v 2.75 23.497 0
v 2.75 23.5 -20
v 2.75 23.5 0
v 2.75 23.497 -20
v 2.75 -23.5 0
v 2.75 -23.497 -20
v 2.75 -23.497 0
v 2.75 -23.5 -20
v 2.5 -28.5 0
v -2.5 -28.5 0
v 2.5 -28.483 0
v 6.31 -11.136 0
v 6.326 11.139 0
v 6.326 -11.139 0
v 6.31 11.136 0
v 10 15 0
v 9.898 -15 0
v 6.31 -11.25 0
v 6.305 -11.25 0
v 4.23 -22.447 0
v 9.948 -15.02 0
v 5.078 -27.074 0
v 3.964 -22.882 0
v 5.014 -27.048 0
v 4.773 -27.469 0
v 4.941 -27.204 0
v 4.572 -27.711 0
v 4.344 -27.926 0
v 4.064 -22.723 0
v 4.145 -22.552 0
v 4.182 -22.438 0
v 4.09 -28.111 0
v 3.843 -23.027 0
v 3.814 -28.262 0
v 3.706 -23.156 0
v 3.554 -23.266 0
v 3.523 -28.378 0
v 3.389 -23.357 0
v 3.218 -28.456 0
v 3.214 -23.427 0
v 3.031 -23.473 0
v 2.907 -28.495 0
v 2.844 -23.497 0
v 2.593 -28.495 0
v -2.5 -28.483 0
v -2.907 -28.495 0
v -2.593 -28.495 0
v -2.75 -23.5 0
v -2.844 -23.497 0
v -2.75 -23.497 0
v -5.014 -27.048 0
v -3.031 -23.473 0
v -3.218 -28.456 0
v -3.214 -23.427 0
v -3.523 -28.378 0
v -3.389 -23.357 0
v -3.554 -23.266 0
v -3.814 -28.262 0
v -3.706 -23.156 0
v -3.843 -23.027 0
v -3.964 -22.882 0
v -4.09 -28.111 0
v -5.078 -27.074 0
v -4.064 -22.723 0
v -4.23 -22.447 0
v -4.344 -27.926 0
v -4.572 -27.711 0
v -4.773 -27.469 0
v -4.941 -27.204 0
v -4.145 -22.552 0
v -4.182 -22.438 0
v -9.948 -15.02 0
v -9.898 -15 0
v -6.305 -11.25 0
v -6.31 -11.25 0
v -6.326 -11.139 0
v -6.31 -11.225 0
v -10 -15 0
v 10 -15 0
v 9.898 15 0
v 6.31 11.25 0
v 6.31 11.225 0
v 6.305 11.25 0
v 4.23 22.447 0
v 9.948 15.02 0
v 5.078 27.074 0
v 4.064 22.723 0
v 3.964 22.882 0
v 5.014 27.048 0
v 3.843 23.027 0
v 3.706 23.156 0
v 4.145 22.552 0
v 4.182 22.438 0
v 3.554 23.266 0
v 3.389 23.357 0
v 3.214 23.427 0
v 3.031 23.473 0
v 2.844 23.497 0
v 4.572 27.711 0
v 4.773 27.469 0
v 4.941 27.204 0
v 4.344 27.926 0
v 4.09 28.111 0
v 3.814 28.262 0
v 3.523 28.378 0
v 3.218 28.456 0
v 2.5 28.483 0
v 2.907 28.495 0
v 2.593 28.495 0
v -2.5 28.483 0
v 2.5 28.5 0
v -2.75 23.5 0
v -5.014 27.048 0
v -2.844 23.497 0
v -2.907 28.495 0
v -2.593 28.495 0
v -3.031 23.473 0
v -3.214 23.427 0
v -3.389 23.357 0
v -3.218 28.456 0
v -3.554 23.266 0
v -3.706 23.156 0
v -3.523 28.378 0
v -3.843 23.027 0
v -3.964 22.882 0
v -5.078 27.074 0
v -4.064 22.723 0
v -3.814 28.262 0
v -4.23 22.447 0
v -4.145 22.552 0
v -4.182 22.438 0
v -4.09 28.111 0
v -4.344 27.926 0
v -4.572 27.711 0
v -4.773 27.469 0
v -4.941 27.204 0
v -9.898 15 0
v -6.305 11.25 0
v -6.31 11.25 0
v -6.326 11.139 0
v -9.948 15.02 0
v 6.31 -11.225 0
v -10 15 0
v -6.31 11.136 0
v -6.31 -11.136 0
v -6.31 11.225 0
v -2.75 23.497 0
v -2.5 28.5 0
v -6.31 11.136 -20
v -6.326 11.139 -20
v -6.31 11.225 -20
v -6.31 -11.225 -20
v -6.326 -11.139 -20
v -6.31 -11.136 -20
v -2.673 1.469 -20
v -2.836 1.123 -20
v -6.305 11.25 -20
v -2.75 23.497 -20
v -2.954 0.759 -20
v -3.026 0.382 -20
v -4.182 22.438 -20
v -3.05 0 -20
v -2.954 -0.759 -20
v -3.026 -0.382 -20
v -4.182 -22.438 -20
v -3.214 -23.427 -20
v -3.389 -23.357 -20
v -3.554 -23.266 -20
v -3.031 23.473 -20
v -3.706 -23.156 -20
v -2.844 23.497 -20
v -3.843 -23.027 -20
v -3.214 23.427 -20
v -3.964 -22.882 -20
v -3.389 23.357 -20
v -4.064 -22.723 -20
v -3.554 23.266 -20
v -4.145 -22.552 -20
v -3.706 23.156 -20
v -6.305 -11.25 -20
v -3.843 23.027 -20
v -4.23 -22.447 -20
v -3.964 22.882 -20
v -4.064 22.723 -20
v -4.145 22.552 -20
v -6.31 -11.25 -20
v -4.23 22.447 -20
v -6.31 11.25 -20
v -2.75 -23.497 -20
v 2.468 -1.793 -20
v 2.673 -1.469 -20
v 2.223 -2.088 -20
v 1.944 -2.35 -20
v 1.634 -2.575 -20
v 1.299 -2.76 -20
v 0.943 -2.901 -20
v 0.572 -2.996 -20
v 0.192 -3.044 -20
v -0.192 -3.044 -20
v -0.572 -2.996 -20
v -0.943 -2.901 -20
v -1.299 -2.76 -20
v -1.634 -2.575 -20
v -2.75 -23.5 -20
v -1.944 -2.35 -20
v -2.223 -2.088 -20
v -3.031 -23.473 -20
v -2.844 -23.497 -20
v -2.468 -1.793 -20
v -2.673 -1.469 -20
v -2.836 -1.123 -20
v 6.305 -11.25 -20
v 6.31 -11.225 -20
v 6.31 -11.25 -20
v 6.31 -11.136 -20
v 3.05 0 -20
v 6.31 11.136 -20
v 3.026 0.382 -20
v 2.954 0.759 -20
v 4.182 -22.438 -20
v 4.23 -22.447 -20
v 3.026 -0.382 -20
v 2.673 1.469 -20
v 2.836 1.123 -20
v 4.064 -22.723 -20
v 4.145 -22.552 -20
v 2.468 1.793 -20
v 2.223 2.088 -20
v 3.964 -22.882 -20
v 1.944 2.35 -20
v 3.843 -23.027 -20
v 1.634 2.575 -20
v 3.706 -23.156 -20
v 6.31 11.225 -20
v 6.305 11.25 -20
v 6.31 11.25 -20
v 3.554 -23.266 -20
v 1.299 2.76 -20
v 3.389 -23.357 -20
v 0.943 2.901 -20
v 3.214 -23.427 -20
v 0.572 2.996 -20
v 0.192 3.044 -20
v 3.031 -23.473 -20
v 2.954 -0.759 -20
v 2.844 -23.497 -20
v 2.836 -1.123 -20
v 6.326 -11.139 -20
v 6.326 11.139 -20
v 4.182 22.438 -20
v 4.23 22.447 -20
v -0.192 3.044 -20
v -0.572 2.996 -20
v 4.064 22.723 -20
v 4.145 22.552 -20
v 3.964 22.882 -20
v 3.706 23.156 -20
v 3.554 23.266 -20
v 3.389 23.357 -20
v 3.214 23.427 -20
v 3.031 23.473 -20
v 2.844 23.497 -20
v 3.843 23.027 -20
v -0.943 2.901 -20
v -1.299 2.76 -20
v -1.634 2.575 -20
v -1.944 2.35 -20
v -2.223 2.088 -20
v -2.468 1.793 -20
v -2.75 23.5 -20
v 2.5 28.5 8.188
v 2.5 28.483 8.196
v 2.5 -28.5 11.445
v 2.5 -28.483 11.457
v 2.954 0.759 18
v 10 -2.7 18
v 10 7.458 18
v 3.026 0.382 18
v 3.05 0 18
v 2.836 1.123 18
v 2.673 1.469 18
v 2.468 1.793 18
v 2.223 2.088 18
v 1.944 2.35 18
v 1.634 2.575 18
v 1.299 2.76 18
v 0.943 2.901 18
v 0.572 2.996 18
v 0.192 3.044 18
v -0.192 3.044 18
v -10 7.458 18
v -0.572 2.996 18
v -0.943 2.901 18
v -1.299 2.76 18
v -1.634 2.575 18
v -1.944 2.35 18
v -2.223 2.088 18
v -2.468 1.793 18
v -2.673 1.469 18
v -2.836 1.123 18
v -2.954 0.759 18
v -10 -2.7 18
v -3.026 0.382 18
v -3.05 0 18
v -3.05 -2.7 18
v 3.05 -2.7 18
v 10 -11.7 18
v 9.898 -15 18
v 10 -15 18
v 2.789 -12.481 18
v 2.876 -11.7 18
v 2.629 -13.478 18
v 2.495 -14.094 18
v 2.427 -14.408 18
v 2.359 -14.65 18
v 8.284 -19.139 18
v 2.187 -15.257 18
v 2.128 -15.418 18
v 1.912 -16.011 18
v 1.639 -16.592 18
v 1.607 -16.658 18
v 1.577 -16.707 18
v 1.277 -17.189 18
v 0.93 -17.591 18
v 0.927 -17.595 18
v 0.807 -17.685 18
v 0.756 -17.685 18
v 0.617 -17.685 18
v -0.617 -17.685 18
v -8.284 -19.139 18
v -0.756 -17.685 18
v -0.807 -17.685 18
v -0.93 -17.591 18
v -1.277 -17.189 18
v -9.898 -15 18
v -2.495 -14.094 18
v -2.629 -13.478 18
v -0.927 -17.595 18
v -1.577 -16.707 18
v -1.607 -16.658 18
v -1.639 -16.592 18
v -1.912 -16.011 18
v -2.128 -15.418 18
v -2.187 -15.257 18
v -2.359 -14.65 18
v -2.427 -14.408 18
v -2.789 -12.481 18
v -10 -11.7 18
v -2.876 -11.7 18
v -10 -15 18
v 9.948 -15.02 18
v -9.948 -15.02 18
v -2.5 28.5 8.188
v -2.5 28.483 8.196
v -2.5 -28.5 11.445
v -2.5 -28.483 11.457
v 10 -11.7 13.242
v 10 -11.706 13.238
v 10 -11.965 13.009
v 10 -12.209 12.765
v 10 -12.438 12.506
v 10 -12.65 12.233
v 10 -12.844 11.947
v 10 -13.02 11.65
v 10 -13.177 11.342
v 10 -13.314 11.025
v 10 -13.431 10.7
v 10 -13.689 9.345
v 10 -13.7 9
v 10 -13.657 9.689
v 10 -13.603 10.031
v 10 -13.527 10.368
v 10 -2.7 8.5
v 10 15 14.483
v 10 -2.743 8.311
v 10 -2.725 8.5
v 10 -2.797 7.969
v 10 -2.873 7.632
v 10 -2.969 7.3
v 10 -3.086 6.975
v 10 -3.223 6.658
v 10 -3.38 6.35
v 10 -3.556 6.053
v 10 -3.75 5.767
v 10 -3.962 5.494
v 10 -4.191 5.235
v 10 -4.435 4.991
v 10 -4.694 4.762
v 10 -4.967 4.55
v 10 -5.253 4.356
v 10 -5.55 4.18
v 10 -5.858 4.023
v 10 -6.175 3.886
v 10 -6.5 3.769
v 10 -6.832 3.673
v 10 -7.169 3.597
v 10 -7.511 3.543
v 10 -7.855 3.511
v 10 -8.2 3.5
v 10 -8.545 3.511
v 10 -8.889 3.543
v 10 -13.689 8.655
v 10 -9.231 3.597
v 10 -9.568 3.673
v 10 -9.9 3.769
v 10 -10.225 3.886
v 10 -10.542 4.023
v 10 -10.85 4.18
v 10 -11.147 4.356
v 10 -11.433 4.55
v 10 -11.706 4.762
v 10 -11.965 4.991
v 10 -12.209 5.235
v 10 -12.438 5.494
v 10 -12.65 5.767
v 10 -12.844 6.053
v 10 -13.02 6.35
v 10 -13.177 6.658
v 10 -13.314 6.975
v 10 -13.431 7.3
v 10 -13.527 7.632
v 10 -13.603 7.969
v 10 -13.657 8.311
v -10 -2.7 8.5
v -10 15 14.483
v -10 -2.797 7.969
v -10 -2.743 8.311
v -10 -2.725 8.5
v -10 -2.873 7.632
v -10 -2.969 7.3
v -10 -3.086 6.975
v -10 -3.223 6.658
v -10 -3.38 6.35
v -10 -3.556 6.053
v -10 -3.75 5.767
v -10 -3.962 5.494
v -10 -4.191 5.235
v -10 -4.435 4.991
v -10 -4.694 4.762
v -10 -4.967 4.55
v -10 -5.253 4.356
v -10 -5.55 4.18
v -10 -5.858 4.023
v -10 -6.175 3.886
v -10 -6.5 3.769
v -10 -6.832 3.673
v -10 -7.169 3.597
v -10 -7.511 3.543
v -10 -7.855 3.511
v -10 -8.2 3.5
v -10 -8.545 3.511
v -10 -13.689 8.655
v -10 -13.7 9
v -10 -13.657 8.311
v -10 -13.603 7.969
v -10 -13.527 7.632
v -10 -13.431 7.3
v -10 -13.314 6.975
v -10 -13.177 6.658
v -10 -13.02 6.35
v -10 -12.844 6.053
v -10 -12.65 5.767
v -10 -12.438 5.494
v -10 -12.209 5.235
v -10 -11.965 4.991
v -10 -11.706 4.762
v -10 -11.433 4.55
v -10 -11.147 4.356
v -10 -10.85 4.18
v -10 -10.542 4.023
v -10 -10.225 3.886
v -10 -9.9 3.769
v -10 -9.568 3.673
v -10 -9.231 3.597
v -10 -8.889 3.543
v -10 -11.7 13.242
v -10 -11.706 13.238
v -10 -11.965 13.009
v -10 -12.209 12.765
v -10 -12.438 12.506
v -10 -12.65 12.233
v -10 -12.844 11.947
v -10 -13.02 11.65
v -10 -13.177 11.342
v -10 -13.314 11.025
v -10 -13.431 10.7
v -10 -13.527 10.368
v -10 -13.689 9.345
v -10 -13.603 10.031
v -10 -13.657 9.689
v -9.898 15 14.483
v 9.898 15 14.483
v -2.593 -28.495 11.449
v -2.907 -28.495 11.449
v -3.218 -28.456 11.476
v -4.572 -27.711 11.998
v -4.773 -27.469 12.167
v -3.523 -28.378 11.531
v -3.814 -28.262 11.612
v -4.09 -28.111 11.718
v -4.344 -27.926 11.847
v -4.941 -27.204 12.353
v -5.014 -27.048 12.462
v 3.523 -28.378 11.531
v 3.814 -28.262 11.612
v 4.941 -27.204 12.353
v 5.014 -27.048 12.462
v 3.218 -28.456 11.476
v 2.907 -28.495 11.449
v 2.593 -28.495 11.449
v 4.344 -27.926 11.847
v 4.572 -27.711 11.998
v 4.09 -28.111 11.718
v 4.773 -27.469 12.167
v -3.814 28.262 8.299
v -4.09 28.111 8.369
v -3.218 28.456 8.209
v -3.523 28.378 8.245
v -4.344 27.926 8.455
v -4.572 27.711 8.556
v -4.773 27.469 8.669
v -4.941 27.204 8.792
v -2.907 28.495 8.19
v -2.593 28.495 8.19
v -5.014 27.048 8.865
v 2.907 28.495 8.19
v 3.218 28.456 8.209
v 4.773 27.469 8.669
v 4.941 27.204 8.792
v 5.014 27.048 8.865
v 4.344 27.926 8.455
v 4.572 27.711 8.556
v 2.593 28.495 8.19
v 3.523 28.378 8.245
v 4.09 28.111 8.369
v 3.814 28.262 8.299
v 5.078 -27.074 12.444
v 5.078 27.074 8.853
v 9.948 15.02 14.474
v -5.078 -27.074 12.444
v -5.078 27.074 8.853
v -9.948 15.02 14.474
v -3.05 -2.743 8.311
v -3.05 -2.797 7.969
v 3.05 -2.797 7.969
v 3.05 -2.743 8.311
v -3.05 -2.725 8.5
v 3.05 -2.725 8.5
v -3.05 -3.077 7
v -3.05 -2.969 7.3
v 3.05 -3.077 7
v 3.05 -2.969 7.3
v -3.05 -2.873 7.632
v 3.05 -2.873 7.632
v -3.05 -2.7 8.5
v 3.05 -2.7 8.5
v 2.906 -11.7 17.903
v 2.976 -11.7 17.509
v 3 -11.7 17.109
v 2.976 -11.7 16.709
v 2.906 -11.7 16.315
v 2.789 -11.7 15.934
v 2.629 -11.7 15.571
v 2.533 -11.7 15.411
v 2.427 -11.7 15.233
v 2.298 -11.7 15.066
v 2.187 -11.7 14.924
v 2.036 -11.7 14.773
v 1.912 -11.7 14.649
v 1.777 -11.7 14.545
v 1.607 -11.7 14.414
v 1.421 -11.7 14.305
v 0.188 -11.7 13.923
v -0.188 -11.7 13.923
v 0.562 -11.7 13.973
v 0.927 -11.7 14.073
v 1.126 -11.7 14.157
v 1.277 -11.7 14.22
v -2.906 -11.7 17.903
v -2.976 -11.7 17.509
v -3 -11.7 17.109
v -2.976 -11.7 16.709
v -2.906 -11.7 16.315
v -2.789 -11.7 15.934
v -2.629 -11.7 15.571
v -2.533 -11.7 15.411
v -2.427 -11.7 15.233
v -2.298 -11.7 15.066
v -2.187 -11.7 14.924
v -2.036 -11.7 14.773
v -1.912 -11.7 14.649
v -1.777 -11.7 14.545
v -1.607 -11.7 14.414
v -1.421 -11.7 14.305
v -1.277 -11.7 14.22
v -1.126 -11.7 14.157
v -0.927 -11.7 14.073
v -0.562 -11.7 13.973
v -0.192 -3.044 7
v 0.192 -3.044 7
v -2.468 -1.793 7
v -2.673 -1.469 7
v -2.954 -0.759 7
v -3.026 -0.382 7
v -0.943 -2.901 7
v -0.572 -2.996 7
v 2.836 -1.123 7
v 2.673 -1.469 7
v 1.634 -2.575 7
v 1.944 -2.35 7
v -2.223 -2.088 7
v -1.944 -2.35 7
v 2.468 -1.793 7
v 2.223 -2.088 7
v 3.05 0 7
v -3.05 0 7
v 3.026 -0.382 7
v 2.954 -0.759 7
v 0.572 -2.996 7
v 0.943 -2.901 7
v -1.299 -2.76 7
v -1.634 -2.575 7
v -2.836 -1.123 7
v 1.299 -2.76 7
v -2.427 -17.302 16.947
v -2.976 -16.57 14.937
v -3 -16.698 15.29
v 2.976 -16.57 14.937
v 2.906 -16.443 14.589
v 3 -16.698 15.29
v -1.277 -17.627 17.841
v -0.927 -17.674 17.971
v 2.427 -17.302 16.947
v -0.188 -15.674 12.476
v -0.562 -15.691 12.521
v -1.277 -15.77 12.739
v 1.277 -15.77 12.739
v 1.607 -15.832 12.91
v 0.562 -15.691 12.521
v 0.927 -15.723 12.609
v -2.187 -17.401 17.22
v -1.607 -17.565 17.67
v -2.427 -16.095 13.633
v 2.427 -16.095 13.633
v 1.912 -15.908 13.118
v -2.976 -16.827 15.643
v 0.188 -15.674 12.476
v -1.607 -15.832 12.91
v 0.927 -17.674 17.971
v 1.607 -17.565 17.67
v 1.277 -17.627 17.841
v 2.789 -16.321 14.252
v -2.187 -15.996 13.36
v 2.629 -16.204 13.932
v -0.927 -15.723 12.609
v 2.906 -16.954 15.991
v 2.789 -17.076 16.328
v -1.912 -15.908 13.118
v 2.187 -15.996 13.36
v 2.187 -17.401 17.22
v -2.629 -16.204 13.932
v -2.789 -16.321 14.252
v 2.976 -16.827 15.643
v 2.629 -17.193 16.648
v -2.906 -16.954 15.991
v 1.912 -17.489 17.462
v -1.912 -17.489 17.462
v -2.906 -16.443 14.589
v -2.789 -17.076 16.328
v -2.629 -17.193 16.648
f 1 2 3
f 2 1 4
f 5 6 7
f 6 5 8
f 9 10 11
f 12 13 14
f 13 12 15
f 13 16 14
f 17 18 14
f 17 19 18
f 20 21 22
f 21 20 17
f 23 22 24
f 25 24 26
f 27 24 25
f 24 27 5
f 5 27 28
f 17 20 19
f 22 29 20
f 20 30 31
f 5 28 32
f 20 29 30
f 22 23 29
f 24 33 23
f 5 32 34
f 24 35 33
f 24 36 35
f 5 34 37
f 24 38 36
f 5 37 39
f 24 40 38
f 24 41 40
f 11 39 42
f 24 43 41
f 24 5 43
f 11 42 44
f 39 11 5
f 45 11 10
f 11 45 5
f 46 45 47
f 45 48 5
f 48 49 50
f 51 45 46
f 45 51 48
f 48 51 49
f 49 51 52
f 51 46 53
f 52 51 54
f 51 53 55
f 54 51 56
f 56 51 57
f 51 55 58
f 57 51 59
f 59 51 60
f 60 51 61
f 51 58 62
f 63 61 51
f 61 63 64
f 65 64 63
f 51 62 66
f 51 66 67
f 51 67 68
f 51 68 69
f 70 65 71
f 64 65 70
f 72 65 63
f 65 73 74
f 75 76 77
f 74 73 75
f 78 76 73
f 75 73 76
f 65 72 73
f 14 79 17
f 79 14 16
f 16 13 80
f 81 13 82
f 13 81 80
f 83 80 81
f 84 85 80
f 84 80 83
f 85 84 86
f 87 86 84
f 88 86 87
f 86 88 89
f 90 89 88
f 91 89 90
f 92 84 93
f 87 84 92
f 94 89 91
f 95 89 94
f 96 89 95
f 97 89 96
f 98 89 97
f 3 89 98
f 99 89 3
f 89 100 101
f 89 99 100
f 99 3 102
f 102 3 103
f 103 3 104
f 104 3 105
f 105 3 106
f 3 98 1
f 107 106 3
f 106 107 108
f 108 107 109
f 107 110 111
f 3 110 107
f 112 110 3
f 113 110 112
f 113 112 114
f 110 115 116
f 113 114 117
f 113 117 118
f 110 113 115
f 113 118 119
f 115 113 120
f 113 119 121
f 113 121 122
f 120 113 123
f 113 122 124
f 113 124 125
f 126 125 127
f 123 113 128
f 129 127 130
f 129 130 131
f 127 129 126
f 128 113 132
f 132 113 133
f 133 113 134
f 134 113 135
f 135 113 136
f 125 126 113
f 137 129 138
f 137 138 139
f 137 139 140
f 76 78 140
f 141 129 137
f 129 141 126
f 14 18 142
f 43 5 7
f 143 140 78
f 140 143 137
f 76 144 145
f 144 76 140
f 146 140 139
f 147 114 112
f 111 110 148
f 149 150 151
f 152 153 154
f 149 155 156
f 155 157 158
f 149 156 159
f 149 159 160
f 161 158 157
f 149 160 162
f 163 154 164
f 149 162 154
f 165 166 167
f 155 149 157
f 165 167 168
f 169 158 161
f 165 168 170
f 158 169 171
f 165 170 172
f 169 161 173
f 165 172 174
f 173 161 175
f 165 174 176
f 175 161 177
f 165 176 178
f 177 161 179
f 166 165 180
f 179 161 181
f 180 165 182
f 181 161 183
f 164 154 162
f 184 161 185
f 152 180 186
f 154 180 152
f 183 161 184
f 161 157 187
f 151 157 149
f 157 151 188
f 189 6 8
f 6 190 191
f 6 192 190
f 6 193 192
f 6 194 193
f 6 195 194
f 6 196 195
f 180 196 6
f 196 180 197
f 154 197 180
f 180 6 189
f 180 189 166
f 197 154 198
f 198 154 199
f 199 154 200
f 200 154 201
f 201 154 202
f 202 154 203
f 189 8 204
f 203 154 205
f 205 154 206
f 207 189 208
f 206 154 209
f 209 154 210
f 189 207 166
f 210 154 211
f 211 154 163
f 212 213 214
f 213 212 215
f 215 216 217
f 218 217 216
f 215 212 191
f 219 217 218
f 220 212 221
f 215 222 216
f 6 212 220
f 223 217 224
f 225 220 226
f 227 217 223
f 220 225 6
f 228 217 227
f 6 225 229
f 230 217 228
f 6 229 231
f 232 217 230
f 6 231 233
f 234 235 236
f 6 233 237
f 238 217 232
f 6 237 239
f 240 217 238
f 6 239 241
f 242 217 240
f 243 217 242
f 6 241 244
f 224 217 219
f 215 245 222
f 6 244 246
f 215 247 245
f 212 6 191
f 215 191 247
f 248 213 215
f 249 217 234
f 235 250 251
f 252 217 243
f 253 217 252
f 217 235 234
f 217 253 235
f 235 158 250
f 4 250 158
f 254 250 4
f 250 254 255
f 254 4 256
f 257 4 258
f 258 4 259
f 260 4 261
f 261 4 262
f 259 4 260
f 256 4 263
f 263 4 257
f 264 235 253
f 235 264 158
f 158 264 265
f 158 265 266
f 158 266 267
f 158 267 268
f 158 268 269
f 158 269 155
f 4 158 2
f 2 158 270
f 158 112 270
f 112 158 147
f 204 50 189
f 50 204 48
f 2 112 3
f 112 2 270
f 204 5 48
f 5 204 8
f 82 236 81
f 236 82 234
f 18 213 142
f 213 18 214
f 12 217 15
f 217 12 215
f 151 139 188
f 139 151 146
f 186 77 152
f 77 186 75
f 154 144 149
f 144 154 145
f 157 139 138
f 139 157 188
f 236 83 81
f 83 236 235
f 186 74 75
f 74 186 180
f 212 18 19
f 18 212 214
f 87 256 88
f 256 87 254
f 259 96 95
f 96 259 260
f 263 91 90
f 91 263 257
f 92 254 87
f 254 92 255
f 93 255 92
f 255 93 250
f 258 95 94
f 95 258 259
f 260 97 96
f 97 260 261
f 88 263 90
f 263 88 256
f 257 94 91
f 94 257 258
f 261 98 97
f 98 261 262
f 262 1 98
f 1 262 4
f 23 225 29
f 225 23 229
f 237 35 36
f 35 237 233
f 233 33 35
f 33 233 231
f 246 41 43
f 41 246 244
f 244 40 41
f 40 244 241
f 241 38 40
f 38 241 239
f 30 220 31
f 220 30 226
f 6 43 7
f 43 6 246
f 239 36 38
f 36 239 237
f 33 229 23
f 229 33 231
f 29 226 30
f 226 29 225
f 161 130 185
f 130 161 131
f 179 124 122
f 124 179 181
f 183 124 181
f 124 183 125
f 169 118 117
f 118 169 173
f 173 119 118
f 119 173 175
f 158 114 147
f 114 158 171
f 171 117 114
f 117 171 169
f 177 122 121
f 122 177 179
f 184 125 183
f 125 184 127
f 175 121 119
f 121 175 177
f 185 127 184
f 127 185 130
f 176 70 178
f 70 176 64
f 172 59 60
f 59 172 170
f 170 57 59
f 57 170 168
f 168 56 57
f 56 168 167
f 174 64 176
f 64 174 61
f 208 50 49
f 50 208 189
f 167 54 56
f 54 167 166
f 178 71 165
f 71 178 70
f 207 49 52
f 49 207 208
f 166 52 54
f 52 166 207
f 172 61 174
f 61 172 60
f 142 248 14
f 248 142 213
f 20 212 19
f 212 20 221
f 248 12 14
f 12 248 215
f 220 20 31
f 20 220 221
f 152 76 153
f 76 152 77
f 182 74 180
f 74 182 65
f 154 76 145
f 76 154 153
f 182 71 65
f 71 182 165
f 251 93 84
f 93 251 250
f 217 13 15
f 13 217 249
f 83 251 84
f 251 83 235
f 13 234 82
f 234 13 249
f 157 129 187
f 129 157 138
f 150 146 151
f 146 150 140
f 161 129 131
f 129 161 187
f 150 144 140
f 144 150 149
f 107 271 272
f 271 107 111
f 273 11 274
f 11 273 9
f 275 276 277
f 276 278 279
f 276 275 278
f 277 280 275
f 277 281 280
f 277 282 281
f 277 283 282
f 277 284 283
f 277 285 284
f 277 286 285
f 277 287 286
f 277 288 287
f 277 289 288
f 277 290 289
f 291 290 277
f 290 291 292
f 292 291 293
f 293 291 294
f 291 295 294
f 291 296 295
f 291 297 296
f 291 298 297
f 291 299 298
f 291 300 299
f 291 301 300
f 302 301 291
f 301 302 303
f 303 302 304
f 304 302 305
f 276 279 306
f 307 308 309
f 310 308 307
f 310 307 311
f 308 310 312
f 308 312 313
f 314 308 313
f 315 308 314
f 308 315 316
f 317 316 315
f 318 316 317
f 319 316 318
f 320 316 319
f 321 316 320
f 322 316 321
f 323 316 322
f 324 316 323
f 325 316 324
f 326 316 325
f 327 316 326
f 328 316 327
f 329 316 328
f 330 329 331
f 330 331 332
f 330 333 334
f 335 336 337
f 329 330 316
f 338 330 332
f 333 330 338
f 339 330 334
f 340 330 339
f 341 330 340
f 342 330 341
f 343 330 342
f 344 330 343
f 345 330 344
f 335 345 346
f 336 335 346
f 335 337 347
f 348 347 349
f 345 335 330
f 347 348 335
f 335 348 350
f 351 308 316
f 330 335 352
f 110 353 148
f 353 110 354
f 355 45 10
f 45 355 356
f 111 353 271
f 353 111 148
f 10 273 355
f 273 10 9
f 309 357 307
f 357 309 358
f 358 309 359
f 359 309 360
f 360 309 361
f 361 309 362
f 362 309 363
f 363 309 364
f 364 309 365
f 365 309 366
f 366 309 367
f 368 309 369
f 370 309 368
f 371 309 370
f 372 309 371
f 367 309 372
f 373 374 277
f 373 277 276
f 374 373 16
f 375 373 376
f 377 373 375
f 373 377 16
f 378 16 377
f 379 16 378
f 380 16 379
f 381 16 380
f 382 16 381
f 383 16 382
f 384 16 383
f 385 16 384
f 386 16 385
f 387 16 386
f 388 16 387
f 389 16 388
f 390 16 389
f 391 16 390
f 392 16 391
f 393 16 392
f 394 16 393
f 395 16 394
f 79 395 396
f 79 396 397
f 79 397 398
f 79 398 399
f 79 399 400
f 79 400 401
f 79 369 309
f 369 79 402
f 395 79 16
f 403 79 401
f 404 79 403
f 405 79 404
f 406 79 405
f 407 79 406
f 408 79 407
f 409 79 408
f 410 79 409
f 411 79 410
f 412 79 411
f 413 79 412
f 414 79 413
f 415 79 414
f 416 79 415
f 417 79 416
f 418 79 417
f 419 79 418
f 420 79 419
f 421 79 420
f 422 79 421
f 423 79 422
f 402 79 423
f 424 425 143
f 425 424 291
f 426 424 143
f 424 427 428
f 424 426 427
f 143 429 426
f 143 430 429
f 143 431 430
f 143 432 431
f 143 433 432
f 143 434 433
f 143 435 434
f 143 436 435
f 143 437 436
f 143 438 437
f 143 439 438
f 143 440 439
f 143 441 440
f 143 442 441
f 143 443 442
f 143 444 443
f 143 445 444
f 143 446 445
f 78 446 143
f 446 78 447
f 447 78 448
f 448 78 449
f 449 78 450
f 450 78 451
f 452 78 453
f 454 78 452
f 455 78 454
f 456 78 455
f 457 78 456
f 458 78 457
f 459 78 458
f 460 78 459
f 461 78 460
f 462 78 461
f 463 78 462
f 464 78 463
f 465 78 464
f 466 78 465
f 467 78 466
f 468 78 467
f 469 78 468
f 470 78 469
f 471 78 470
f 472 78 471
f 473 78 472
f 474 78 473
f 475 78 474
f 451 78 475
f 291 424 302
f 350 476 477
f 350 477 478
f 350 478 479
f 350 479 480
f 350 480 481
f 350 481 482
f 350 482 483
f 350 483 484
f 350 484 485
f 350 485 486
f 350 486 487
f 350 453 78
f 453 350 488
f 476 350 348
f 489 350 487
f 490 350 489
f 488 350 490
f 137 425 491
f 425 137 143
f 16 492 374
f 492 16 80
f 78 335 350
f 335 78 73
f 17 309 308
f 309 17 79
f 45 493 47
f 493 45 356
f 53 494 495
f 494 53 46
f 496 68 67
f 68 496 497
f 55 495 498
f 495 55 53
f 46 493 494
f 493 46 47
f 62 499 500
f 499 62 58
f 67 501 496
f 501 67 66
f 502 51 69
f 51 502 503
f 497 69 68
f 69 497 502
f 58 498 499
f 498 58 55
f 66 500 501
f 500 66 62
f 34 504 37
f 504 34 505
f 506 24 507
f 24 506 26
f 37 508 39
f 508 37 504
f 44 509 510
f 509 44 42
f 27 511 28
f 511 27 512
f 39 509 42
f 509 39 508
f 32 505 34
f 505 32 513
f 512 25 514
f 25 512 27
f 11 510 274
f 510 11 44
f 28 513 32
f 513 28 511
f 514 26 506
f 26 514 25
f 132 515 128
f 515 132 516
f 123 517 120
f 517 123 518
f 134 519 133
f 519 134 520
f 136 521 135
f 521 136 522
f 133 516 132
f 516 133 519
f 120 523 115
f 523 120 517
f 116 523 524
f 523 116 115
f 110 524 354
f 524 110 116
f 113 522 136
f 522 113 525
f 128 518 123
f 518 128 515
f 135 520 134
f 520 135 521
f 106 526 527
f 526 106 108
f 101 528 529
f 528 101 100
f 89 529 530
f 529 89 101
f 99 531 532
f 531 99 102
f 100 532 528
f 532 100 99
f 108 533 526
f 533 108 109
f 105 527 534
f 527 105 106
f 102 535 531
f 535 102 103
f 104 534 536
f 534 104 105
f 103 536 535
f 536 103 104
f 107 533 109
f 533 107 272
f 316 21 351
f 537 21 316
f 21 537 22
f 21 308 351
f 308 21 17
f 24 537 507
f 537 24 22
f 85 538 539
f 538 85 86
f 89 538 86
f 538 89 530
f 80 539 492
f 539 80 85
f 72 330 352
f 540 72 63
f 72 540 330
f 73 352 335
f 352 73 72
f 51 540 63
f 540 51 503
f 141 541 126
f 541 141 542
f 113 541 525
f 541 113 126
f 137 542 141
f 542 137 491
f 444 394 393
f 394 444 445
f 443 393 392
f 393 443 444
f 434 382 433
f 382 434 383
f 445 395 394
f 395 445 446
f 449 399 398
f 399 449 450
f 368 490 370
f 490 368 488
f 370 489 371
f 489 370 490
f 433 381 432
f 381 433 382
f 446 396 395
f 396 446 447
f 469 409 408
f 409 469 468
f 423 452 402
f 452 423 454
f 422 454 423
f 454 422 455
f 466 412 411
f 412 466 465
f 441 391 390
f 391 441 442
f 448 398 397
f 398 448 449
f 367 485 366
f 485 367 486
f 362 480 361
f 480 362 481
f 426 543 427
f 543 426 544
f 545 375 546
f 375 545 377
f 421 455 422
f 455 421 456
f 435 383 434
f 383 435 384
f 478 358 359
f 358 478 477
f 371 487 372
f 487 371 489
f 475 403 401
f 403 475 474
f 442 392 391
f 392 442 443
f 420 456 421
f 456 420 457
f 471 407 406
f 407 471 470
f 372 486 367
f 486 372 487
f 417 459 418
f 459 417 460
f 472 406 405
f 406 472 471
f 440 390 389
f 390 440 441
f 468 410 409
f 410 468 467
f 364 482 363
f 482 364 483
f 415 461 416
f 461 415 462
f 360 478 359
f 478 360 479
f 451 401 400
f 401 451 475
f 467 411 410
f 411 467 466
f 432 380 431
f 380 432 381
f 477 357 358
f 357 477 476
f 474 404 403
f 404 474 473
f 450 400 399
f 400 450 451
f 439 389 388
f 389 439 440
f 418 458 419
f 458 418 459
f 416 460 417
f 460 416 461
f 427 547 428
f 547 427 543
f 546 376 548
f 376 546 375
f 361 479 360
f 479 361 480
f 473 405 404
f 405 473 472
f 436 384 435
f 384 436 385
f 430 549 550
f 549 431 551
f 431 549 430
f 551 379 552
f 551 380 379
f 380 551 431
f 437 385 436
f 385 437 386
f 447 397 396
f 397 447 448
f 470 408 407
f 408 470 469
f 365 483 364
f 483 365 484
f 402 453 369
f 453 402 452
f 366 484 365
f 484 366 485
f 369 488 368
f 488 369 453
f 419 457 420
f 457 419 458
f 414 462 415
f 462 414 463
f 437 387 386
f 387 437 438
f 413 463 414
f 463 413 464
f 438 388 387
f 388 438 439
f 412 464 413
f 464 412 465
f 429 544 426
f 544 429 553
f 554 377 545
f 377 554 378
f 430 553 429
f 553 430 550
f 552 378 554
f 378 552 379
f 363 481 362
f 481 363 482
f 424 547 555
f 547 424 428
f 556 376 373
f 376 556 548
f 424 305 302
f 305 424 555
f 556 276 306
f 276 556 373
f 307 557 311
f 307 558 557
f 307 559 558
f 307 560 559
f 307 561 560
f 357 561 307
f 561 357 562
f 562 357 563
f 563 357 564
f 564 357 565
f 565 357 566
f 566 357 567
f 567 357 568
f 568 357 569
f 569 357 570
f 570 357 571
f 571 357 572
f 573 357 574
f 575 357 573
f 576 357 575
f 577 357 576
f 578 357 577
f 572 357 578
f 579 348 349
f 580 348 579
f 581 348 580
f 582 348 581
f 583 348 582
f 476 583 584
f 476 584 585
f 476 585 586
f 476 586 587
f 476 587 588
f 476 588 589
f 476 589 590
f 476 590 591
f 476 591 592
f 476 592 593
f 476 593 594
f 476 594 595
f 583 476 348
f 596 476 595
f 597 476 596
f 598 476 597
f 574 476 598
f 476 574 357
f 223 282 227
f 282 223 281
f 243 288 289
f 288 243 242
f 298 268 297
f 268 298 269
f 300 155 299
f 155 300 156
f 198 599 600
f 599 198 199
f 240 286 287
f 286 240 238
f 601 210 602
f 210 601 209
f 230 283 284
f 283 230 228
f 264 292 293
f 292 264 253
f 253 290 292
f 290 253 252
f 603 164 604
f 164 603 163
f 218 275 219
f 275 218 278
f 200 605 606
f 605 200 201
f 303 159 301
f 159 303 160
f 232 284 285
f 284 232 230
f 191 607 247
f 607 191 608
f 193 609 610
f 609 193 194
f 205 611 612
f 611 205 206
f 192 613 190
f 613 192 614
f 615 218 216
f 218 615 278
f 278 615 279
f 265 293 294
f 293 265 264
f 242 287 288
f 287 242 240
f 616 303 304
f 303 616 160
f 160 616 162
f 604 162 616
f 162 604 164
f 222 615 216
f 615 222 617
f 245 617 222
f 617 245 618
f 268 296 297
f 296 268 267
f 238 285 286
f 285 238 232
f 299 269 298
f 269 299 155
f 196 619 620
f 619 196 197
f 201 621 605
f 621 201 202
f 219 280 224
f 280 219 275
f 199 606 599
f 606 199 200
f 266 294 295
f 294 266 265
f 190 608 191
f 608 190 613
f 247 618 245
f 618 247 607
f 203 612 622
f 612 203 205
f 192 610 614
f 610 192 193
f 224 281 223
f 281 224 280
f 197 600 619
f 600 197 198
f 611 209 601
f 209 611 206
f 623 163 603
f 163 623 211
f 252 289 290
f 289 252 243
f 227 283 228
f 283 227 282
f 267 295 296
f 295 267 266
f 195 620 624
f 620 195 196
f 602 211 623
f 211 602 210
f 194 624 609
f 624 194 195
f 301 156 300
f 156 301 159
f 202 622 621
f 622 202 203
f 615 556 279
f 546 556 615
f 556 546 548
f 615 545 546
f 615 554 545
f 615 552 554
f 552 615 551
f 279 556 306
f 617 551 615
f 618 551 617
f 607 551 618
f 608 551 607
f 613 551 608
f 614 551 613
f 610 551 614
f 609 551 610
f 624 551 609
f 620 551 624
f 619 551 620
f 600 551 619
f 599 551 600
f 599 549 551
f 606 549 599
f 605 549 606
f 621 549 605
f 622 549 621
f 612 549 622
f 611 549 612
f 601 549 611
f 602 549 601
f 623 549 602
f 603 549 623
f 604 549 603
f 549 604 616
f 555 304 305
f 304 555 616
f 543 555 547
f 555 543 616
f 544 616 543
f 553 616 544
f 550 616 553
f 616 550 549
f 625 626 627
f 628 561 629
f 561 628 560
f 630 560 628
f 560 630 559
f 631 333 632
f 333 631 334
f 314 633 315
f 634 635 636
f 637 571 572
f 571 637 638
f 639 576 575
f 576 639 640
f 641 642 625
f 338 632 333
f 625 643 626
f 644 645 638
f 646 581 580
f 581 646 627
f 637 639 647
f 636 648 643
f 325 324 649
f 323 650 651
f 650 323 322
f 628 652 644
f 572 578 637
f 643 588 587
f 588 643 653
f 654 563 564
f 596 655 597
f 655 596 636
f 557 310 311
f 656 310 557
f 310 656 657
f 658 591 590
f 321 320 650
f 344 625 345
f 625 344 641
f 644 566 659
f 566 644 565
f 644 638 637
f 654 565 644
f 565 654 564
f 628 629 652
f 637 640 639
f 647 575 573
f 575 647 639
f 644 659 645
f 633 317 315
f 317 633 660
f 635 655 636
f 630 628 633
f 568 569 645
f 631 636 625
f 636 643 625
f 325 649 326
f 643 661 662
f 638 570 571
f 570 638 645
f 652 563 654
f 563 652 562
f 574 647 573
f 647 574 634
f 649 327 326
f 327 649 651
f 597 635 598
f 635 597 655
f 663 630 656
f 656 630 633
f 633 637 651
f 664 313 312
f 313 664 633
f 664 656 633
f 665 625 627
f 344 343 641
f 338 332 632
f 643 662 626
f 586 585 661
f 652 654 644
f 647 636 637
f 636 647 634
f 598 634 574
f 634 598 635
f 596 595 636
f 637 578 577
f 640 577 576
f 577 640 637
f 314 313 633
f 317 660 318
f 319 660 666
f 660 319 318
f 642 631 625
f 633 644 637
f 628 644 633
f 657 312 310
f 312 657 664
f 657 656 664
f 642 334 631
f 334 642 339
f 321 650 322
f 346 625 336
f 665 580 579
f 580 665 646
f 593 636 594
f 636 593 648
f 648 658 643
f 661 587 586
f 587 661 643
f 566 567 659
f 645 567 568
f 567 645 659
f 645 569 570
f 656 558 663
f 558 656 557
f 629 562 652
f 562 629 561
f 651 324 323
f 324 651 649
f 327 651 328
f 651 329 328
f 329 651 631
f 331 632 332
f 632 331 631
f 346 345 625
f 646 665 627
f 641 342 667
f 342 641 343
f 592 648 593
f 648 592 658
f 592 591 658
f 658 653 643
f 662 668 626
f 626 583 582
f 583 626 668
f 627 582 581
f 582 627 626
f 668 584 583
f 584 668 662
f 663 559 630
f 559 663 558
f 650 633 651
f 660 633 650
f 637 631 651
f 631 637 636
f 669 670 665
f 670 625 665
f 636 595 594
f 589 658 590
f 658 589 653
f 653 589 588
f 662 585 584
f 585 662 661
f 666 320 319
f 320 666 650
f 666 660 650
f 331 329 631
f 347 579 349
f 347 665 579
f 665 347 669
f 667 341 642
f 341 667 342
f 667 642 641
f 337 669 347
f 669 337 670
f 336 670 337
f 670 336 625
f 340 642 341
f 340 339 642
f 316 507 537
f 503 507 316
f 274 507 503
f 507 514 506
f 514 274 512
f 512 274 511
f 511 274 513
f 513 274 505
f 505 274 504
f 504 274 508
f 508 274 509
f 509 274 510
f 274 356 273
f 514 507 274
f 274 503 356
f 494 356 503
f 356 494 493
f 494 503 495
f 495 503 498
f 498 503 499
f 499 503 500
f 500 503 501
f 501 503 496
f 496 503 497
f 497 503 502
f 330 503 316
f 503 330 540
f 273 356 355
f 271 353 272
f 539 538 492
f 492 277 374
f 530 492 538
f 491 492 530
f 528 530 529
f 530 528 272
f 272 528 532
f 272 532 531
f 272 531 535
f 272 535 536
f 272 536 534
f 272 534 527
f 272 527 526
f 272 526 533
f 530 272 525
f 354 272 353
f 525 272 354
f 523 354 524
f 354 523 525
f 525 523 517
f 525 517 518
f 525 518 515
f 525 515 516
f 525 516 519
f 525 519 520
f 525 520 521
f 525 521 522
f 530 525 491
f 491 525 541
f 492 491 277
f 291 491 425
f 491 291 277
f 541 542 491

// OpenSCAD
/*
 * Embout Barre de Fleche Thibault
 * 
 * Diametre inox: 6mm
 * Longueur interieure: 47mm
 * Longueur exterieure: 57mm (minimum)
 * Largeur interieure: 12.62mm
 * Largeur exterieure: 18mm (mini)
 *
 * Hauteur partie superieure: 18mm
 * Hauteur partie interieure: 20mm
 *
 * Diametre trou de fixation: 3mm
 * Position trou de fixation: H: -10mm
 *                            L:  10mm
 */
 
 module bottomPart() {
   
   width = 12.62;
   length = 47;
   height = 20;
   
   union() {
     rotate([0, 0, 0]) {
       translate([0, 0, 0]) {
         cube([5.5, length, height], center=true);
       }
     }
     rotate([0, 0, 0]) {
       translate([0, 0, 0]) {
         cube([width, 22.5, height], center=true);
       }
     }
     // Corners
     rotate([0, 0, 0]) {
       translate([5.5 / 2, (length / 2) - 1.5, 0]) {
         cylinder(h=height, r=1.5, center=true, $fn=50);
       }
     }
     rotate([0, 0, 0]) {
       translate([5.5 / 2, -((length / 2) - 1.5), 0]) {
         cylinder(h=height, r=1.5, center=true, $fn=50);
       }
     }
     rotate([0, 0, 0]) {
       translate([-5.5 / 2, (length / 2) - 1.5, 0]) {
         cylinder(h=height, r=1.5, center=true, $fn=50);
       }
     }
     rotate([0, 0, 0]) {
       translate([-5.5 / 2, -((length / 2) - 1.5), 0]) {
         cylinder(h=height, r=1.5, center=true, $fn=50);
       }
     }
     // Joining narrow and wide parts
     // - Right
     rotate([0, 0, -10.5]) {
       translate([5.75, -15.55, 0]) {
         cube([5, 11.5, height], center=true);
       }
     }
     rotate([0, 0, 10.5]) {
       translate([-5.75, -15.55, 0]) {
         cube([5, 11.5, height], center=true);
       }
     }
     // - Left
     rotate([0, 0, 10.5]) {
       translate([5.75, 15.55, 0]) {
         cube([5, 11.5, height], center=true);
       }
     }
     rotate([0, 0, -10.5]) {
       translate([-5.75, 15.55, 0]) {
         cube([5, 11.5, height], center=true);
       }
     }
   }
 }
 
 module topPart() {
   
   fullLength = 57;
   height = 18;
   
   difference() {
     union() {
     
       // Main thing
       rotate([0, 0, 0]) {
         translate([0, 0, 0]) {
           cube([5, fullLength, height], center=true); 
         }
       }
       // Thickest part
       rotate([0, 0, 0]) {
         translate([0, 0, 0]) {
           cube([20, 30, height], center=true); 
         }
       }
       // Corners
       rotate([0, 0, 0]) {
         translate([-5.5 / 2, -((fullLength / 2) - 2.5), 0]) {
           cylinder(h=18, r=2.5, center=true, $fn=50);
         }
       }
       rotate([0, 0, 0]) {
         translate([5.5 / 2, -((fullLength / 2) - 2.5), 0]) {
           cylinder(h=18, r=2.5, center=true, $fn=50);
         }
       }
       rotate([0, 0, 0]) {
         translate([-5.5 / 2, ((fullLength / 2) - 2.5), 0]) {
           cylinder(h=18, r=2.5, center=true, $fn=50);
         }
       }
       rotate([0, 0, 0]) {
         translate([5.5 / 2, ((fullLength / 2) - 2.5), 0]) {
           cylinder(h=18, r=2.5, center=true, $fn=50);
         }
       }
       // Joining narrow and wide parts
       // - One side
       rotate([0, 0, -22]) {
         translate([11.35, -16.7, 0]) {
           cube([7, 13, height], center=true);
         }
       }
       rotate([0, 0, 22]) {
         translate([11.35, 16.7, 0]) {
           cube([7, 13, height], center=true);
         }
       }
       // - Other side
       rotate([0, 0, 22]) {
         translate([-11.35, -16.7, 0]) {
           cube([7, 13, height], center=true);
         }
       }
       rotate([0, 0, -22]) {
         translate([-11.35, 16.7, 0]) {
           cube([7, 13, height], center=true);
         }
       }
       
     }
     // Cable hole
     rotate([0, 90, 0]){ 
       translate([0, -8.2, 0]) {
         cylinder(h=30, r=5.5, center=true, $fn=100);
       }
     }
     // Top hole, for the stanless steel part
     rotate([0, 0, 0]){ 
       translate([0, -7.2, 7.5]) {
         cube([30, 9, 16], center=true);
       }
     }
   }
 }
 
 // Now we're talking.
 
 difference() {
   union() {
     // Bottom
     rotate([0, 0, 0]) {
       translate([0, 0, -20 / 2]) {
         bottomPart();
       }
     }
     // Top
     rotate([0, 0, 0]) {
       translate([0, 0, 18 / 2]) {
         topPart();
       }
     }
   }
   // The axis
   rotate([0, 0, 0]) {
     translate([0, 0, 0]) {
       cylinder(h=50, r=3.05, center=true, $fn=50);
     }
   }
   // Front of the axis
   rotate([0, 0, 0]) {
     translate([0, -4, 22]) {
       cube([6.1, 8, 30], center=true);
     }
   }
   // Tip of the hook
   translate([0, -12, 17]) {
     rotate([-70, 0, 0]) {
       cylinder(h=10, r=3, center=true, $fn=50);
     }
   }
   
   // Front carenage
   translate([0, -25, 20]) {
     rotate([35, 0, 0]) {
       cube([30, 30, 10], center=true);
     }
   }
   // Back carenage
   translate([0, 15, 20]) {
     rotate([-25, 0, 0]) {
       cube([30, 50, 10], center=true);
     }
   }

 }
